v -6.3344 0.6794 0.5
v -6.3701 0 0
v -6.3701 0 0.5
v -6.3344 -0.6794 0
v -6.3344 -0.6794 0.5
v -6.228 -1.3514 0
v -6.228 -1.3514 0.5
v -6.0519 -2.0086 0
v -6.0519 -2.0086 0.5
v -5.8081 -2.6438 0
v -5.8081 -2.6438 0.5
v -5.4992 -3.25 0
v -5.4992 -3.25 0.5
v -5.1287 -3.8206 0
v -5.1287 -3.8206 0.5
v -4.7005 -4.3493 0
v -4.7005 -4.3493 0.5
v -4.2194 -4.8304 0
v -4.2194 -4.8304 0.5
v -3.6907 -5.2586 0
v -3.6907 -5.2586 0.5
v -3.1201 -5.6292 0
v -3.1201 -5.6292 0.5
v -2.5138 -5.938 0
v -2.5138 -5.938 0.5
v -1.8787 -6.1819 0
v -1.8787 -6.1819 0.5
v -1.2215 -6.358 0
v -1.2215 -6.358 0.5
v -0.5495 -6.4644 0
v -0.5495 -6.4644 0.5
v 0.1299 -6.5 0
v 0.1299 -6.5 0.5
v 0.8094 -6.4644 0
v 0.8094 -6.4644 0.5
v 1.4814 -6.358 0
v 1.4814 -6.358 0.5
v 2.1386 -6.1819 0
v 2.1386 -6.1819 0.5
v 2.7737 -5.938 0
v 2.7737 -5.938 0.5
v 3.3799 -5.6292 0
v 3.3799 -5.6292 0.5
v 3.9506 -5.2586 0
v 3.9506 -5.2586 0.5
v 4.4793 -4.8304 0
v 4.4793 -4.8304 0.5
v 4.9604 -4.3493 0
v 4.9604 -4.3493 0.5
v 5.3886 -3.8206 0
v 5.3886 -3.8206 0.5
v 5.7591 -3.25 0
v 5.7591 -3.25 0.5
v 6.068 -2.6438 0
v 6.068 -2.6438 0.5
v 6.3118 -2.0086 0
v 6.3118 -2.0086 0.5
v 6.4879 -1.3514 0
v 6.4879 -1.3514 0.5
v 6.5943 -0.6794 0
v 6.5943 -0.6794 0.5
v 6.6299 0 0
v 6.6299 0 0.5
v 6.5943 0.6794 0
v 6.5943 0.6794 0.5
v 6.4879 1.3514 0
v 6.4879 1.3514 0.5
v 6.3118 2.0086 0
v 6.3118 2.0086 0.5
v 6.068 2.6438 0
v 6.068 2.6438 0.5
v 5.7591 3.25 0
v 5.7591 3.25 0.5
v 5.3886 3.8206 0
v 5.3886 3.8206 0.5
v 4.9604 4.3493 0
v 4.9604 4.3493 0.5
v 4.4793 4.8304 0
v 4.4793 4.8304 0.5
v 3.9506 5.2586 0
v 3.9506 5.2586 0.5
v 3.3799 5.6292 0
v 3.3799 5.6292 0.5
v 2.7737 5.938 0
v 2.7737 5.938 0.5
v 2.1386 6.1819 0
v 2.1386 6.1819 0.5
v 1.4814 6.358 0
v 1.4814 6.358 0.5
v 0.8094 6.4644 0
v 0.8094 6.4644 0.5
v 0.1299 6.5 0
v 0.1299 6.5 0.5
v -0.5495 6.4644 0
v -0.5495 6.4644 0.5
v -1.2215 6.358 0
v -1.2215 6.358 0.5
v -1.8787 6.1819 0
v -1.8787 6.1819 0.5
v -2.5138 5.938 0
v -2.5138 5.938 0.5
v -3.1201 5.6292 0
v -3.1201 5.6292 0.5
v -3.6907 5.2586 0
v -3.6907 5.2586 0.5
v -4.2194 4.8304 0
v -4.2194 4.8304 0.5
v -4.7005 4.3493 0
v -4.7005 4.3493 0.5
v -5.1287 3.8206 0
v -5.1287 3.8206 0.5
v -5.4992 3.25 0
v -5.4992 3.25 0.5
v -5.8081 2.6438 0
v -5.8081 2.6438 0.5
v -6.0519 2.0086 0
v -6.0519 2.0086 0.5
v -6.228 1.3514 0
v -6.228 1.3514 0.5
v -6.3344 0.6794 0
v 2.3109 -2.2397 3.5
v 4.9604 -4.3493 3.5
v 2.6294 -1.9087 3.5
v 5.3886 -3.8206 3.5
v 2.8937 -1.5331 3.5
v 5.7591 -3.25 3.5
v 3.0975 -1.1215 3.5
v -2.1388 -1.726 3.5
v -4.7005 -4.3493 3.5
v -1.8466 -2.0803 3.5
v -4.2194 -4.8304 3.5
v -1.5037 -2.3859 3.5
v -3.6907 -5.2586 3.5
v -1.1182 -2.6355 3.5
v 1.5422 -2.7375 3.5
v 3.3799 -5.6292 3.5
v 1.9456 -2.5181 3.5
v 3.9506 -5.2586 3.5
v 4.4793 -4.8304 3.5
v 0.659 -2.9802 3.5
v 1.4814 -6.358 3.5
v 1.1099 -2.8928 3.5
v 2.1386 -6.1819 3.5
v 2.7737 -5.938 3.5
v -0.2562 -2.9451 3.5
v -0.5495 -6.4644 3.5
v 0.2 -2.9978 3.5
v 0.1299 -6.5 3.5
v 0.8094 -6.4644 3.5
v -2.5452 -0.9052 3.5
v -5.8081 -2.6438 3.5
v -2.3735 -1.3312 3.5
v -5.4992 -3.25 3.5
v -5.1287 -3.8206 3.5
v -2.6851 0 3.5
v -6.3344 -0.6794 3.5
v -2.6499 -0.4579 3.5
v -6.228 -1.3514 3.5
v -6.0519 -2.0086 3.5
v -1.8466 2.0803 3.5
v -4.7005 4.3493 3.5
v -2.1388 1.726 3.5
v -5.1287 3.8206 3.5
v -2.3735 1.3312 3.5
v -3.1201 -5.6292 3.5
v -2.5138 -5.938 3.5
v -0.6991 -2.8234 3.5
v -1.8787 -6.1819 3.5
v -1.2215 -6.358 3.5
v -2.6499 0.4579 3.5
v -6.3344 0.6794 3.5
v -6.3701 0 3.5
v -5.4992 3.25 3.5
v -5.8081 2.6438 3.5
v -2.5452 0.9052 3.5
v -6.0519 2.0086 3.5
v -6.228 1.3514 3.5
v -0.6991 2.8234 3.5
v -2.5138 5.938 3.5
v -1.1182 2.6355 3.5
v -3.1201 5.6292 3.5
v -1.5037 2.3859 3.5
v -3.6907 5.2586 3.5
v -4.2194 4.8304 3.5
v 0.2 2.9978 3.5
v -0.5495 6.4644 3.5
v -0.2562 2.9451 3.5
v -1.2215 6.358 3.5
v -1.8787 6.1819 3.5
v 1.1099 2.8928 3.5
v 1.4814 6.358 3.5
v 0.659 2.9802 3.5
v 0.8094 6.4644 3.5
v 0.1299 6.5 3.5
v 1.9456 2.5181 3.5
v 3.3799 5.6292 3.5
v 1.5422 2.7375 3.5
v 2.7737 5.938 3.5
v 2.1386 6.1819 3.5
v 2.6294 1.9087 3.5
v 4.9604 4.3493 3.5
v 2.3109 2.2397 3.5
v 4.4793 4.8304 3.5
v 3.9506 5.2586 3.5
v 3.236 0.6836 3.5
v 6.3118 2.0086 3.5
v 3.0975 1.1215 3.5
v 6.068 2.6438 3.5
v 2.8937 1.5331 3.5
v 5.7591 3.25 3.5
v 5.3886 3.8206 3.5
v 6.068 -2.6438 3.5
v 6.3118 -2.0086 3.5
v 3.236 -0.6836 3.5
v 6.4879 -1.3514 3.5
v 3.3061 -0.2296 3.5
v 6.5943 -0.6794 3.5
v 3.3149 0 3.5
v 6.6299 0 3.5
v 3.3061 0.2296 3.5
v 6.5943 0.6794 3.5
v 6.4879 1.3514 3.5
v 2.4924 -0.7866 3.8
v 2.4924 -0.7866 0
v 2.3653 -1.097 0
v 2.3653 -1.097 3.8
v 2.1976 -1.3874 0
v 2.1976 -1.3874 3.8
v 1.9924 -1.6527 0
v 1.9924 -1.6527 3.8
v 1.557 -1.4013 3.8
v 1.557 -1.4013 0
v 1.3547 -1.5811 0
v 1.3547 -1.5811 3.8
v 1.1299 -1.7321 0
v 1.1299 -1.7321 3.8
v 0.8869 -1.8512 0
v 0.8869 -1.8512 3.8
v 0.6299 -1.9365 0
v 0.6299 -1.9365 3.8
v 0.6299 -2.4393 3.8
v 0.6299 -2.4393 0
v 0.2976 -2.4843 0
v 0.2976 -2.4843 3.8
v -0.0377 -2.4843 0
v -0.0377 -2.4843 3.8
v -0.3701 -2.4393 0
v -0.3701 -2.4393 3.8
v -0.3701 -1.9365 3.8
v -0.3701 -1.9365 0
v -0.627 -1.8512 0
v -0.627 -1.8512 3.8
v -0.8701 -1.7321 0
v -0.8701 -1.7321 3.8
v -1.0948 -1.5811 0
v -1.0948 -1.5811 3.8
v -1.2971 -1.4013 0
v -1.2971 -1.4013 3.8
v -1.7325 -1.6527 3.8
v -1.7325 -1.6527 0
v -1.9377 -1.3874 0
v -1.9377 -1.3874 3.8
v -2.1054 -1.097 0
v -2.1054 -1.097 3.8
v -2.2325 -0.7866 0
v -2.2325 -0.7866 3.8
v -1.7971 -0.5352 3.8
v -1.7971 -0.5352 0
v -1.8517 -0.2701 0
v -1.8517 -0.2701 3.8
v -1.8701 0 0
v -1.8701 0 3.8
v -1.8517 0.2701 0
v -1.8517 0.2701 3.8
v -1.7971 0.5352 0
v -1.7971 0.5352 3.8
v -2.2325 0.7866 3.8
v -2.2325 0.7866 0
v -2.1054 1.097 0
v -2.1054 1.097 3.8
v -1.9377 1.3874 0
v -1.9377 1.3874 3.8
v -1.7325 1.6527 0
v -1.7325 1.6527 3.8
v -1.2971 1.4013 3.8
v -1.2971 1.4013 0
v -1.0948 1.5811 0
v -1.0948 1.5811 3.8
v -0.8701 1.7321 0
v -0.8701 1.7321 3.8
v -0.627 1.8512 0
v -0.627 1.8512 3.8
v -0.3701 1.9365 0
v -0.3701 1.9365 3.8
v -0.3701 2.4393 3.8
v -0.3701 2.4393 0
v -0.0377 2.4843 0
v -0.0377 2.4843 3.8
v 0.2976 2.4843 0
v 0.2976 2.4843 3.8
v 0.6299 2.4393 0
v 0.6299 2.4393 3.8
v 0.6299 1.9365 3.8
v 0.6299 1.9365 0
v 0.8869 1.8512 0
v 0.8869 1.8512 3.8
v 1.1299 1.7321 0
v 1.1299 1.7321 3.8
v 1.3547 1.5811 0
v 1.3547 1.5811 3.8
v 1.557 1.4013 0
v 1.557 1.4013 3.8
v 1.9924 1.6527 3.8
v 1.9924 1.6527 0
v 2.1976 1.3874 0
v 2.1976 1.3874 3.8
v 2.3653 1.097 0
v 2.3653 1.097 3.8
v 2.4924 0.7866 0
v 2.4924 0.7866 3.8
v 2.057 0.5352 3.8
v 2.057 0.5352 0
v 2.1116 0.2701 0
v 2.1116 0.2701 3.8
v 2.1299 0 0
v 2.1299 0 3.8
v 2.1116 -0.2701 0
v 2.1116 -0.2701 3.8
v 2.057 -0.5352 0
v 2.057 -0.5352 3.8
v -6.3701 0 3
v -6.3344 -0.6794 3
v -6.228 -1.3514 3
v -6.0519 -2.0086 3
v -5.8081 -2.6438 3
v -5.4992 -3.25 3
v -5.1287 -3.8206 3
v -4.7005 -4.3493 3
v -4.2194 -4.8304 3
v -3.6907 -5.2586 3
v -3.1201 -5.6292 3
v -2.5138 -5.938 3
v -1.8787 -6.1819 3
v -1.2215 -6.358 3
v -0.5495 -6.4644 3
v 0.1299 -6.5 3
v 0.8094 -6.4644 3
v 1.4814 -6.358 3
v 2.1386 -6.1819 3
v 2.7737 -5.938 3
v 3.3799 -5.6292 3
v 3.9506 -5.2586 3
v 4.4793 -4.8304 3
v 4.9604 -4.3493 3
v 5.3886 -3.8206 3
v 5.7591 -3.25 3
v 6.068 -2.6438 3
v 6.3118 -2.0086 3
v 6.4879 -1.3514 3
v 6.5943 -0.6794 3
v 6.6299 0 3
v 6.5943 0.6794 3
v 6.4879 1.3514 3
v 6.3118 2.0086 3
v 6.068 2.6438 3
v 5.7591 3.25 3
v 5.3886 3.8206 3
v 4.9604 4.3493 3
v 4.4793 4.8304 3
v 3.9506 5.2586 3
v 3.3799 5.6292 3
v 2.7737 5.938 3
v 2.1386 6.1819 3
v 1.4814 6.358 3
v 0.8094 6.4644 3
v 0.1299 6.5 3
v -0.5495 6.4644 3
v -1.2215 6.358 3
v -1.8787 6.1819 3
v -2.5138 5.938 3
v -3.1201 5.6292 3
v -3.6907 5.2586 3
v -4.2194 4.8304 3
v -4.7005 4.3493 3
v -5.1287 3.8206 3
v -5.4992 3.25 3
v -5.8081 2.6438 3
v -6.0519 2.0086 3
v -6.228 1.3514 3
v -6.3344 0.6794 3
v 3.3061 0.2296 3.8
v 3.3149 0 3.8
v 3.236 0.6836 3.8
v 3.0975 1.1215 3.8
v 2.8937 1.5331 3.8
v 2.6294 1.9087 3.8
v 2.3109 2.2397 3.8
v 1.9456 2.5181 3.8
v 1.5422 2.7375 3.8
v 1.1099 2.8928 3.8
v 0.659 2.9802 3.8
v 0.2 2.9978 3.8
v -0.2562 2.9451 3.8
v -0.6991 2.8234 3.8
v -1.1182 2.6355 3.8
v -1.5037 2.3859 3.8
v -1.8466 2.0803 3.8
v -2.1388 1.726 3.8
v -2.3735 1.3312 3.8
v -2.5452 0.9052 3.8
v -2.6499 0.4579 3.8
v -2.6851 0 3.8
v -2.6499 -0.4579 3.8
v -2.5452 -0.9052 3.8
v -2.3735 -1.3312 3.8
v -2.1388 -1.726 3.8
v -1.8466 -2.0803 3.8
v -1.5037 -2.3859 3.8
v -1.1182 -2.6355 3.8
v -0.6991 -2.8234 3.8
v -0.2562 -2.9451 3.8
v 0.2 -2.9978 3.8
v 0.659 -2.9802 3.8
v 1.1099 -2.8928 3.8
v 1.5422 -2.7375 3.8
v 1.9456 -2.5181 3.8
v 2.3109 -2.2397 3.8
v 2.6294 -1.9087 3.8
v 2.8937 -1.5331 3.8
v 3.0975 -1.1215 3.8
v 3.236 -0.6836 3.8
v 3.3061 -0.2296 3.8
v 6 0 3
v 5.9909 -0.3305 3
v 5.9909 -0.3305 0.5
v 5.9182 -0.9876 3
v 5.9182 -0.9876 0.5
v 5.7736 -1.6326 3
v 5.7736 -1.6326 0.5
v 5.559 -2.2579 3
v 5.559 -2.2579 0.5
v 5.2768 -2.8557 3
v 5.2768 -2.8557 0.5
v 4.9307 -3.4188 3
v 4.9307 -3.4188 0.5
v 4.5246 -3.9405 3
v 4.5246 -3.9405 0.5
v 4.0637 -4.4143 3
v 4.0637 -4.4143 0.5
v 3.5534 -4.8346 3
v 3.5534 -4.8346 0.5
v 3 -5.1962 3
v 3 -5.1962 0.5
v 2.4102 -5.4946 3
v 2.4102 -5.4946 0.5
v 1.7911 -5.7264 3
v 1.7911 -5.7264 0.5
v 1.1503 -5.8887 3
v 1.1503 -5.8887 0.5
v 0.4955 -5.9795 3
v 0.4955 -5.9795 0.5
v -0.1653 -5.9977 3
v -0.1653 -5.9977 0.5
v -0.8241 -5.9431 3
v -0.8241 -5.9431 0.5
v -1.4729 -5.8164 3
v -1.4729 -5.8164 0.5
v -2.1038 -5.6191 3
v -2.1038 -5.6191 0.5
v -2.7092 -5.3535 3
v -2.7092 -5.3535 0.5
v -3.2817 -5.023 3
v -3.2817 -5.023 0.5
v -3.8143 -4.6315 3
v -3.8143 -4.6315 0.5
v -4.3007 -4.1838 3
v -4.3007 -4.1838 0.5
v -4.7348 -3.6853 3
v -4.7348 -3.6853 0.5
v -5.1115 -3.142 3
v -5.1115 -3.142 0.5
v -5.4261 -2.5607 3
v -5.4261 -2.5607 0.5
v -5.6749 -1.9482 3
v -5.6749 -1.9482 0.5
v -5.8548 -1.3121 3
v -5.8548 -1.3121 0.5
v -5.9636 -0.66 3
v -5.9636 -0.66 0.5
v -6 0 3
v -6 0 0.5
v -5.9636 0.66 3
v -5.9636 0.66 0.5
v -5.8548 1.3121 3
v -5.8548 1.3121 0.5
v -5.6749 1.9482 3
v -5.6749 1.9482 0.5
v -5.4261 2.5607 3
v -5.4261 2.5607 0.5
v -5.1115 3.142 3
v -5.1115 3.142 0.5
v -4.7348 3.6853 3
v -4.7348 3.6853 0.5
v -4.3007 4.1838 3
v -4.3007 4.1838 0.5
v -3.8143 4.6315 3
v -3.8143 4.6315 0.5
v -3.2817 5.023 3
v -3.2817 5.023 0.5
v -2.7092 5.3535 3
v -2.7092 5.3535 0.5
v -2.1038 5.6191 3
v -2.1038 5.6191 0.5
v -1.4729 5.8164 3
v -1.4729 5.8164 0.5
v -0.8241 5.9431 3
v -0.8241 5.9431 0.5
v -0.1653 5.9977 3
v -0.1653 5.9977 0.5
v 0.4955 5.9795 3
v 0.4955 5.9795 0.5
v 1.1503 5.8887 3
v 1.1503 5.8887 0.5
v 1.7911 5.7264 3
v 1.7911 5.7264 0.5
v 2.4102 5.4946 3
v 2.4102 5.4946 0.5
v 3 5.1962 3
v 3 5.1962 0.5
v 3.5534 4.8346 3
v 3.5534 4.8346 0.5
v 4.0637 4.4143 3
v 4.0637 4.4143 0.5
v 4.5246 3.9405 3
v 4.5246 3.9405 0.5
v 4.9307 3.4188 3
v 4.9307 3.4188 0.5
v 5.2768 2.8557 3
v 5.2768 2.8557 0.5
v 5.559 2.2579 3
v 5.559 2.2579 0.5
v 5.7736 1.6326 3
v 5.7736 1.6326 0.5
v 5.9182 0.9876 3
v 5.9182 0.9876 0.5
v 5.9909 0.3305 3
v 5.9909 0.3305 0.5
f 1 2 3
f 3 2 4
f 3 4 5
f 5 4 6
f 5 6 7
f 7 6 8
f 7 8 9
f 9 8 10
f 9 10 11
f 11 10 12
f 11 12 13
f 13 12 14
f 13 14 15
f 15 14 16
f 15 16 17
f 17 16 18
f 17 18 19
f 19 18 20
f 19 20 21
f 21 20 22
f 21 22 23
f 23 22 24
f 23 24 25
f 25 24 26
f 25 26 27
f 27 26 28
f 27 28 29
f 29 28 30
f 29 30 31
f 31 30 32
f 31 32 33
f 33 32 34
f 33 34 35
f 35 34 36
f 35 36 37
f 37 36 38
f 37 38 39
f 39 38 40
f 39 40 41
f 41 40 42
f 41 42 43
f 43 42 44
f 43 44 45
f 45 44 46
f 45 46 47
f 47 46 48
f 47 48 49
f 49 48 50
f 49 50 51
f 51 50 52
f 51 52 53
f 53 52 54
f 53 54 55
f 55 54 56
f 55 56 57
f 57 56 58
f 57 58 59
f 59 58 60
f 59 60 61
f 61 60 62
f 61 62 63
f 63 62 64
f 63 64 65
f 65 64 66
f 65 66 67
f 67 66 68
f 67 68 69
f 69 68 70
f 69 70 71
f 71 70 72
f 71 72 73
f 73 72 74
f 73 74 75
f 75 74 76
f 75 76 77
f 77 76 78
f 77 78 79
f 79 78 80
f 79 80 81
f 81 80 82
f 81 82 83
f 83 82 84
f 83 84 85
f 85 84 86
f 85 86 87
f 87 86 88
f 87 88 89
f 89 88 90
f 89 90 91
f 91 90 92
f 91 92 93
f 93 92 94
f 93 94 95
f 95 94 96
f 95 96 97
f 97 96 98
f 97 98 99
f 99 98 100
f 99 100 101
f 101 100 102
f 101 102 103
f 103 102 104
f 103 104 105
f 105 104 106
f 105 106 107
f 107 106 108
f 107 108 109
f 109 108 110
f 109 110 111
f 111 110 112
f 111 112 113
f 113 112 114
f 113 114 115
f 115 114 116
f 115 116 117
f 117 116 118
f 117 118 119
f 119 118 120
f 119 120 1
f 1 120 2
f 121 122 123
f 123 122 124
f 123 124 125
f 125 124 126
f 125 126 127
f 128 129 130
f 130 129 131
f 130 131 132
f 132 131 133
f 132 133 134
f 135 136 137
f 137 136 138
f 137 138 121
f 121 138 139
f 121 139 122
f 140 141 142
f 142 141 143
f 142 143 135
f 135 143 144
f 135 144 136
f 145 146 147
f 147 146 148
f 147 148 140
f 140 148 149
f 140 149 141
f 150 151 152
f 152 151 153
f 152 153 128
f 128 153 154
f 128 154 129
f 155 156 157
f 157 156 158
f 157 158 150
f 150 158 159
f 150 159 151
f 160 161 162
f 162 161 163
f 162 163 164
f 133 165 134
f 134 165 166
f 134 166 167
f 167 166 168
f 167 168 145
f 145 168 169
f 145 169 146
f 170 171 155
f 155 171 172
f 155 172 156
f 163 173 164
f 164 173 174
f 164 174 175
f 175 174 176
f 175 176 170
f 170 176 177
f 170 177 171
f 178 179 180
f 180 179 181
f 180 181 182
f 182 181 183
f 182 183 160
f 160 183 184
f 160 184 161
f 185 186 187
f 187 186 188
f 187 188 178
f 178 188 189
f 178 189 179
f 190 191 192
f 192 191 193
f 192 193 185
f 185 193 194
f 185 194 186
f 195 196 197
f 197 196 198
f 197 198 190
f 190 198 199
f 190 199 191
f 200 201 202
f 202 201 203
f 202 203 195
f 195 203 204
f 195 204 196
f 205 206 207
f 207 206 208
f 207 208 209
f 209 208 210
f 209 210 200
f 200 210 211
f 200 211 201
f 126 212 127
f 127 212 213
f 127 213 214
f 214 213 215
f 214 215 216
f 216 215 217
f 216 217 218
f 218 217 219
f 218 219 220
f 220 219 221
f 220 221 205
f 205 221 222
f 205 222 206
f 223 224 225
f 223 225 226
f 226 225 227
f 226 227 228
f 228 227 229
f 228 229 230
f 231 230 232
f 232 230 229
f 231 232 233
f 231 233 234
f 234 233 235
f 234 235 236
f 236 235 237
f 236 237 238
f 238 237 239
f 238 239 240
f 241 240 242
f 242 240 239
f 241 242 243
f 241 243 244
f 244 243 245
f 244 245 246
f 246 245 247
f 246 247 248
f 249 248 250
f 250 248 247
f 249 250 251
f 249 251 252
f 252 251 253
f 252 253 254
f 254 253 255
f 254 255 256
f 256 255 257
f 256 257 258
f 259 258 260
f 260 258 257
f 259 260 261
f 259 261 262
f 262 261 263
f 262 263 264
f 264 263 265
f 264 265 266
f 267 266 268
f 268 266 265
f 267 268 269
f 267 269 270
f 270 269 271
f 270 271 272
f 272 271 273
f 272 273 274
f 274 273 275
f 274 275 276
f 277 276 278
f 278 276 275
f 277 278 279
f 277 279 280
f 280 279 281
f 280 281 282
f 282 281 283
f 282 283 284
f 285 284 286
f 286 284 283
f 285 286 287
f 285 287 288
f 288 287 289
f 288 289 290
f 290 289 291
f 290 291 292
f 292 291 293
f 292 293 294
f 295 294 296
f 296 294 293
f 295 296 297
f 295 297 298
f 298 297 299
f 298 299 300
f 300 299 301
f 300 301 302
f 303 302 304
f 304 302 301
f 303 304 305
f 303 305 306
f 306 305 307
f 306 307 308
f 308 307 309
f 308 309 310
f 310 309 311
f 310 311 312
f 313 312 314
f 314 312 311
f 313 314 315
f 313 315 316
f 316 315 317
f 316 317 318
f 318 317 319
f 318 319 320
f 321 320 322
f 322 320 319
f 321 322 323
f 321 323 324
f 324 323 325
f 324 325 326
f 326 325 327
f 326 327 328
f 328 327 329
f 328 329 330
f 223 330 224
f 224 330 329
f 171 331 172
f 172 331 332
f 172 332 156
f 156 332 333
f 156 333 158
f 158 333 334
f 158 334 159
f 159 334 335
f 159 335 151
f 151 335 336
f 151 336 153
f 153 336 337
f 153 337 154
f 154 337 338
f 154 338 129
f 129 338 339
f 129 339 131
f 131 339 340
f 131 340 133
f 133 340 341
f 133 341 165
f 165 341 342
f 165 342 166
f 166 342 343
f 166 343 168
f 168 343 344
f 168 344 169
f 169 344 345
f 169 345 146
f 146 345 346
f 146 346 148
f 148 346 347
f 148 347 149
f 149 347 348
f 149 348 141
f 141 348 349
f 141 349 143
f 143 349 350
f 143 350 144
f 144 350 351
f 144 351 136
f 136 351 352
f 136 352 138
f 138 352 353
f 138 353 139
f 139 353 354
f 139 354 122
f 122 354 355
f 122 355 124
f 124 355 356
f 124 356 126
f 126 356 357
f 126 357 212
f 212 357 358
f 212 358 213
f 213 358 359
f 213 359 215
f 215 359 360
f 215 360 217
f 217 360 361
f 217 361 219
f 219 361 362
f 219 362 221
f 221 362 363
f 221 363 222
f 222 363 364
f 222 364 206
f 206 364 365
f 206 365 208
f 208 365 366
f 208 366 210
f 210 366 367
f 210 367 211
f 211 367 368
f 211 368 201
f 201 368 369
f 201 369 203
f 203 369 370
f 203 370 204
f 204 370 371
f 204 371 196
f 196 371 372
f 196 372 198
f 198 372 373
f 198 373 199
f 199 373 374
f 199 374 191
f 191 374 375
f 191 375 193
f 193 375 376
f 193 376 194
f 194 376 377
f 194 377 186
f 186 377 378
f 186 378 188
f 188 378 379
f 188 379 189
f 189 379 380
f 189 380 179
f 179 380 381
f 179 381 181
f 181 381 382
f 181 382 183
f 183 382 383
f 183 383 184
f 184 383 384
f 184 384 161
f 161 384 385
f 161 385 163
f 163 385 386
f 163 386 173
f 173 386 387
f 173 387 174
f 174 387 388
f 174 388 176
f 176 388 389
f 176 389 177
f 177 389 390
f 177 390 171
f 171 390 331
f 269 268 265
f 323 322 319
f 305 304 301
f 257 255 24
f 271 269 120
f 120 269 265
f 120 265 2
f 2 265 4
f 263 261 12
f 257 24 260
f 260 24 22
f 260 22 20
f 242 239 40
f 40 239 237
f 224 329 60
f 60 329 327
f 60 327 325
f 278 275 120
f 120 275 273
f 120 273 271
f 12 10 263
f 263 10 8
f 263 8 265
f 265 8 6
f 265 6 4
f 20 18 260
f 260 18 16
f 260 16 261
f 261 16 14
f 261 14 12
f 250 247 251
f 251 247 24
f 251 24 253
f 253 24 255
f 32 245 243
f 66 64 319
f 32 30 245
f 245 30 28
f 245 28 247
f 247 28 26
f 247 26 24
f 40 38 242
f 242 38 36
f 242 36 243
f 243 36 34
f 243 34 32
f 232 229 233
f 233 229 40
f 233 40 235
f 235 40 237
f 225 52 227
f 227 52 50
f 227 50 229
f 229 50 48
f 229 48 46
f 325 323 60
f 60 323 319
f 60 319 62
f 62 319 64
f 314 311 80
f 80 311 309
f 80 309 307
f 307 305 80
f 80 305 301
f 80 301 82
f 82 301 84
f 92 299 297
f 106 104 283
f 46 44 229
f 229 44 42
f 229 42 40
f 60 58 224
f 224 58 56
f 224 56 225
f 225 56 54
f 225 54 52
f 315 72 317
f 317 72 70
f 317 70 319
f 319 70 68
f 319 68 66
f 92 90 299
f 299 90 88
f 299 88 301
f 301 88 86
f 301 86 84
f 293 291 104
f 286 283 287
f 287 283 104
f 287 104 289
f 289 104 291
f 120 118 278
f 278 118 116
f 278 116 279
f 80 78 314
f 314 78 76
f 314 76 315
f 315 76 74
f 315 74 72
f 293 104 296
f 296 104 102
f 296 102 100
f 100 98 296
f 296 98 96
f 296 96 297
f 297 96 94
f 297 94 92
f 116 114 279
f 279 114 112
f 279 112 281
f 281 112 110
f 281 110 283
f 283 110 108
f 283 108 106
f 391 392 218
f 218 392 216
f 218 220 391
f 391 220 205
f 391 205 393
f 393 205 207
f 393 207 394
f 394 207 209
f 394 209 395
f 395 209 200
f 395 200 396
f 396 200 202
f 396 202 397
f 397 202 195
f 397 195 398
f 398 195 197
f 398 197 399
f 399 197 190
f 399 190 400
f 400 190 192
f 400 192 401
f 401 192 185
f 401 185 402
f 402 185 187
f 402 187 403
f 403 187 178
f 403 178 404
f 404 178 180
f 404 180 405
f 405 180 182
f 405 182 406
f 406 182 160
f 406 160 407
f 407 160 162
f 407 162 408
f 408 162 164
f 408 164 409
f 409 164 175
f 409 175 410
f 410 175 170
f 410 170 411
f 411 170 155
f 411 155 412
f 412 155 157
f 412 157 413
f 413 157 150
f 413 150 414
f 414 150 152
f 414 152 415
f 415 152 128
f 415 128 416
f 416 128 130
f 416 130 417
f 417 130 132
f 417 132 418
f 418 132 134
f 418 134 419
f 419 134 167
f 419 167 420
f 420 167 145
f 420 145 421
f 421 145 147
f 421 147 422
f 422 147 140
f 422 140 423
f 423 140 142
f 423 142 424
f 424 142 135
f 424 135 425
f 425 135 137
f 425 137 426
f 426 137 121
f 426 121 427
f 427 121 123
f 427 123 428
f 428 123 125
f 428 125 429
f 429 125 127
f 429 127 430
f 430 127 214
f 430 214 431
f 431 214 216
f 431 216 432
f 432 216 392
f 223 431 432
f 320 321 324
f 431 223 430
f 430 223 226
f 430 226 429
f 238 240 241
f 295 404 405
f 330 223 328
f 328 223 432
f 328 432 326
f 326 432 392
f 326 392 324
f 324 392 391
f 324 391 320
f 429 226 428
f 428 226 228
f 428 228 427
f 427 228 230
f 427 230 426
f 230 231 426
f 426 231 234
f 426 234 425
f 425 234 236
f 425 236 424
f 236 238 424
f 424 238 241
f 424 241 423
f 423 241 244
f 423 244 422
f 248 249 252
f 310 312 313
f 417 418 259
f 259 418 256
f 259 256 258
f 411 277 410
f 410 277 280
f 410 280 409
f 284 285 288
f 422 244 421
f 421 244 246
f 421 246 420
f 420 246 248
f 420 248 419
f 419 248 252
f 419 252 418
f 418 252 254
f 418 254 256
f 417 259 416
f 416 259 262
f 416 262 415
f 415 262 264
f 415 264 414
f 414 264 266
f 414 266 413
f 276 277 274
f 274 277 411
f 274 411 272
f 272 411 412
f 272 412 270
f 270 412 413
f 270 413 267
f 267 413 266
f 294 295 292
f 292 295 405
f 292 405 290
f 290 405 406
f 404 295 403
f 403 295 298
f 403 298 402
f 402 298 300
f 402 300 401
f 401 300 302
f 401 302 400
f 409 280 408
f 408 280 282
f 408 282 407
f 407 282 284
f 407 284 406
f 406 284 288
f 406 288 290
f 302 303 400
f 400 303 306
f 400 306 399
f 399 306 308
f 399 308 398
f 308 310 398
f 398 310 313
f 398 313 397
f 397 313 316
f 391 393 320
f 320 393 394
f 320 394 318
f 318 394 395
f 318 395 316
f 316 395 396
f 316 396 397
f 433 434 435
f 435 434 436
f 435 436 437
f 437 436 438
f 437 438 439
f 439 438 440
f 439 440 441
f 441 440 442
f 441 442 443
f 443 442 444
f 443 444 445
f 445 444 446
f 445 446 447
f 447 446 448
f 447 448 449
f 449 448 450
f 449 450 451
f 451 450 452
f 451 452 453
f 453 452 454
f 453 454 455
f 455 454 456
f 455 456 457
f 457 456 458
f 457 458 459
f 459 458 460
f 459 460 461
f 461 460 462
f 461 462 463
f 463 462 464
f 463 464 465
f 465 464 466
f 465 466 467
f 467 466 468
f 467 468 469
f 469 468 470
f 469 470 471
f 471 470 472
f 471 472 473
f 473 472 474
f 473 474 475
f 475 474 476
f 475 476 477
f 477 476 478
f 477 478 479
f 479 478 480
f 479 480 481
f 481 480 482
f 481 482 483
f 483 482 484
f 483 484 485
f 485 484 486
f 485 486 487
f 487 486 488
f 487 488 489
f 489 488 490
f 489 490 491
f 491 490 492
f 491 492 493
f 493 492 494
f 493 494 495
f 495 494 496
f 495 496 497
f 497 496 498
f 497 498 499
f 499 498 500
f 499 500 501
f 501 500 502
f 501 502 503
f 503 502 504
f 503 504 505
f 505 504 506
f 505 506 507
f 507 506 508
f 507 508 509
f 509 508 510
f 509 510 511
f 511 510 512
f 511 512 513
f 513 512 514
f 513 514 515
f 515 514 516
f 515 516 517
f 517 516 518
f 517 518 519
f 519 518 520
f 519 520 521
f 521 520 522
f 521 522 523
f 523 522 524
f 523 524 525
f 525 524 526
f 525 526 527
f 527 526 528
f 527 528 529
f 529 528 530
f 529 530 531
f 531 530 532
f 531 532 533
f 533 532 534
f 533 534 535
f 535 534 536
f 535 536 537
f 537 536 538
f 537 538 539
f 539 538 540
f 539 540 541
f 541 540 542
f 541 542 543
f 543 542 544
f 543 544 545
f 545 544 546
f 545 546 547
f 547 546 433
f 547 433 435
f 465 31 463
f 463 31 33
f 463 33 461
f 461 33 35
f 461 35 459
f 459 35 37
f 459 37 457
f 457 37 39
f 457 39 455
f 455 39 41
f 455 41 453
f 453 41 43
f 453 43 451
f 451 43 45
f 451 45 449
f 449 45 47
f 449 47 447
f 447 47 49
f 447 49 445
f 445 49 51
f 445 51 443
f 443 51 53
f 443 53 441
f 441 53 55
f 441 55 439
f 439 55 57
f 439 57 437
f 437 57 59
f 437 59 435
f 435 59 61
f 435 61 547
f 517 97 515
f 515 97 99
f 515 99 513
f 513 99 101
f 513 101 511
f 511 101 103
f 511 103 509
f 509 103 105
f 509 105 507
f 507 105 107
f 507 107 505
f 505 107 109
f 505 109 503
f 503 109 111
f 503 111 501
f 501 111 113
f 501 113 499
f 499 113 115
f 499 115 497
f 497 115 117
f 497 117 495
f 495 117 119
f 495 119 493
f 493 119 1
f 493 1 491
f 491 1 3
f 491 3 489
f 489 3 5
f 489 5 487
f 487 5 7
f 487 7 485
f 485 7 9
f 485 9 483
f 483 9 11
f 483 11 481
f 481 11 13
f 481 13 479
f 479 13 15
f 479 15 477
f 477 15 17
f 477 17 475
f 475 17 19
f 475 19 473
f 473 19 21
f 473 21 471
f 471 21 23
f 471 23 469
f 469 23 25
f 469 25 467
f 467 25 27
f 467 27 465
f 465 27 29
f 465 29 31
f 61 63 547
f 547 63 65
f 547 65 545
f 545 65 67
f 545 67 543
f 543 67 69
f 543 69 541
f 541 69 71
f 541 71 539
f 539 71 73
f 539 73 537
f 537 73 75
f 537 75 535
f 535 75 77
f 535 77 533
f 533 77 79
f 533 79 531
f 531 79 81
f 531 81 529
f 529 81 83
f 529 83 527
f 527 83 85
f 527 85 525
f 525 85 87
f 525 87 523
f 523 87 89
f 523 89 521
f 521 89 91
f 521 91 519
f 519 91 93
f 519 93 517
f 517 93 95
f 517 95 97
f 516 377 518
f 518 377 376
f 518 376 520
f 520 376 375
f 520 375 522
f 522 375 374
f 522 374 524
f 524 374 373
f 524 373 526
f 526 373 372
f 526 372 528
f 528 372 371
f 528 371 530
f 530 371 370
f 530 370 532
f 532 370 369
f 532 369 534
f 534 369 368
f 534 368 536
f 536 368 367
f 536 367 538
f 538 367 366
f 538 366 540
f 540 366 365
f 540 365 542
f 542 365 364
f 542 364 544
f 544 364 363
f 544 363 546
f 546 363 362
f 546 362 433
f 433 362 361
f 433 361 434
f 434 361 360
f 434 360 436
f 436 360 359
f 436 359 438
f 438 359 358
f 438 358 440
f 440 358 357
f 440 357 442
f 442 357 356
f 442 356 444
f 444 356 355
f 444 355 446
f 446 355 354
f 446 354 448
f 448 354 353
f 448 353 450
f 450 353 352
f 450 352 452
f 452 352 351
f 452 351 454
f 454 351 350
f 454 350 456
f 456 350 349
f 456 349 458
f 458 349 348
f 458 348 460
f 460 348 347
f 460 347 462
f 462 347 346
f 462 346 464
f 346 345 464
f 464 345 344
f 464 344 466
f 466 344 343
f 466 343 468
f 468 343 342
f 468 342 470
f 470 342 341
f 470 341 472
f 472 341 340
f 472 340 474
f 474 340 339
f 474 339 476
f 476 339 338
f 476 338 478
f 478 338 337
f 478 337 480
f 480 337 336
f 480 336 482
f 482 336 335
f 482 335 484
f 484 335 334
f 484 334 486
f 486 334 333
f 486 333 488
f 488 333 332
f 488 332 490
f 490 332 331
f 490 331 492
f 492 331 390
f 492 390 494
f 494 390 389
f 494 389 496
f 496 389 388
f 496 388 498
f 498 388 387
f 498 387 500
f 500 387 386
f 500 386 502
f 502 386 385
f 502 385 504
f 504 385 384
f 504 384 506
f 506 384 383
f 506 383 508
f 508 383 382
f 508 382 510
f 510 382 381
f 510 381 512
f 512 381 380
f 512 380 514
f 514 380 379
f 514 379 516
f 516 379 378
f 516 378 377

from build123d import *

# Parameters (mm, degrees)
SKETCH1_R           = 6.5
BOSS_EXTRUDE1_DEPTH = 3.5
SKETCH3_R           = 3
BOSS_EXTRUDE2_DEPTH = 0.3
SKETCH4_R           = 6.5
SKETCH4_R_2         = 6
CUT_EXTRUDE1_DEPTH  = 2.5


with BuildPart() as part:
    # Sketch1 → Boss-Extrude1 (new body)
    with BuildSketch(Plane.XY):
        with Locations((0.129947127, 0)):
            Circle(SKETCH1_R)
        with BuildLine():
            Line((-0.370052873, 1.936491673), (-0.370052873, 2.439282681))
            ThreePointArc((-0.370052873, 2.439282681), (0.129947127, 2.49), (0.629947127, 2.439282681))
            Line((0.629947127, 2.439282681), (0.629947127, 1.936491673))
            ThreePointArc((0.629947127, 1.936491673), (1.129947127, 1.732050808), (1.55699811, 1.401258538))
            Line((1.55699811, 1.401258538), (1.992427896, 1.652654043))
            ThreePointArc((1.992427896, 1.652654043), (2.286350382, 1.245), (2.492427896, 0.786628639))
            Line((2.492427896, 0.786628639), (2.05699811, 0.535233135))
            ThreePointArc((2.05699811, 0.535233135), (2.129947127, 0), (2.05699811, -0.535233135))
            Line((2.05699811, -0.535233135), (2.492427896, -0.786628639))
            ThreePointArc((2.492427896, -0.786628639), (2.286350382, -1.245), (1.992427896, -1.652654043))
            Line((1.992427896, -1.652654043), (1.55699811, -1.401258538))
            ThreePointArc((1.55699811, -1.401258538), (1.129947127, -1.732050808), (0.629947127, -1.936491673))
            Line((0.629947127, -1.936491673), (0.629947127, -2.439282681))
            ThreePointArc((0.629947127, -2.439282681), (0.129947127, -2.49), (-0.370052873, -2.439282681))
            Line((-0.370052873, -2.439282681), (-0.370052873, -1.936491673))
            ThreePointArc((-0.370052873, -1.936491673), (-0.870052873, -1.732050808), (-1.297103856, -1.401258538))
            Line((-1.297103856, -1.401258538), (-1.732533642, -1.652654043))
            ThreePointArc((-1.732533642, -1.652654043), (-2.026456129, -1.245), (-2.232533642, -0.786628639))
            Line((-2.232533642, -0.786628639), (-1.797103856, -0.535233135))
            ThreePointArc((-1.797103856, -0.535233135), (-1.870052873, 0), (-1.797103856, 0.535233135))
            Line((-1.797103856, 0.535233135), (-2.232533642, 0.786628639))
            ThreePointArc((-2.232533642, 0.786628639), (-2.026456129, 1.245), (-1.732533642, 1.652654043))
            Line((-1.732533642, 1.652654043), (-1.297103856, 1.401258538))
            ThreePointArc((-1.297103856, 1.401258538), (-0.870052873, 1.732050808), (-0.370052873, 1.936491673))
        make_face(mode=Mode.SUBTRACT)
    extrude(amount=BOSS_EXTRUDE1_DEPTH)

    # Sketch3 → Boss-Extrude2 (add)
    with BuildSketch(Plane.XY.offset(3.5)):
        with Locations((0.314947127, 0)):
            Circle(SKETCH3_R)
        with BuildLine():
            Line((0.629947127, 2.439282681), (0.629947127, 1.936491673))
            ThreePointArc((0.629947127, 1.936491673), (1.129947127, 1.732050808), (1.55699811, 1.401258538))
            Line((1.55699811, 1.401258538), (1.992427896, 1.652654043))
            ThreePointArc((1.992427896, 1.652654043), (2.286350382, 1.245), (2.492427896, 0.786628639))
            Line((2.492427896, 0.786628639), (2.05699811, 0.535233135))
            ThreePointArc((2.05699811, 0.535233135), (2.129947127, 0), (2.05699811, -0.535233135))
            Line((2.05699811, -0.535233135), (2.492427896, -0.786628639))
            ThreePointArc((2.492427896, -0.786628639), (2.286350382, -1.245), (1.992427896, -1.652654043))
            Line((1.992427896, -1.652654043), (1.55699811, -1.401258538))
            ThreePointArc((1.55699811, -1.401258538), (1.129947127, -1.732050808), (0.629947127, -1.936491673))
            Line((0.629947127, -1.936491673), (0.629947127, -2.439282681))
            ThreePointArc((0.629947127, -2.439282681), (0.129947127, -2.49), (-0.370052873, -2.439282681))
            Line((-0.370052873, -2.439282681), (-0.370052873, -1.936491673))
            ThreePointArc((-0.370052873, -1.936491673), (-0.870052873, -1.732050808), (-1.297103856, -1.401258538))
            Line((-1.297103856, -1.401258538), (-1.732533642, -1.652654043))
            ThreePointArc((-1.732533642, -1.652654043), (-2.026456129, -1.245), (-2.232533642, -0.786628639))
            Line((-2.232533642, -0.786628639), (-1.797103856, -0.535233135))
            ThreePointArc((-1.797103856, -0.535233135), (-1.870052873, 0), (-1.797103856, 0.535233135))
            Line((-1.797103856, 0.535233135), (-2.232533642, 0.786628639))
            ThreePointArc((-2.232533642, 0.786628639), (-2.026456129, 1.245), (-1.732533642, 1.652654043))
            Line((-1.732533642, 1.652654043), (-1.297103856, 1.401258538))
            ThreePointArc((-1.297103856, 1.401258538), (-0.870052873, 1.732050808), (-0.370052873, 1.936491673))
            Line((-0.370052873, 1.936491673), (-0.370052873, 2.439282681))
            ThreePointArc((-0.370052873, 2.439282681), (0.129947127, 2.49), (0.629947127, 2.439282681))
        make_face(mode=Mode.SUBTRACT)
    extrude(amount=BOSS_EXTRUDE2_DEPTH)

    # Sketch4 → Cut-Extrude1 (cut)
    with BuildSketch(Plane(origin=(0, 0, 0.5), x_dir=(-1, 0, 0), z_dir=(0, 0, -1))):
        with Locations((-0.129947127, 0)):
            Circle(SKETCH4_R)
        Circle(SKETCH4_R_2, mode=Mode.SUBTRACT)
    extrude(amount=-CUT_EXTRUDE1_DEPTH, mode=Mode.SUBTRACT)


solid = part.part
